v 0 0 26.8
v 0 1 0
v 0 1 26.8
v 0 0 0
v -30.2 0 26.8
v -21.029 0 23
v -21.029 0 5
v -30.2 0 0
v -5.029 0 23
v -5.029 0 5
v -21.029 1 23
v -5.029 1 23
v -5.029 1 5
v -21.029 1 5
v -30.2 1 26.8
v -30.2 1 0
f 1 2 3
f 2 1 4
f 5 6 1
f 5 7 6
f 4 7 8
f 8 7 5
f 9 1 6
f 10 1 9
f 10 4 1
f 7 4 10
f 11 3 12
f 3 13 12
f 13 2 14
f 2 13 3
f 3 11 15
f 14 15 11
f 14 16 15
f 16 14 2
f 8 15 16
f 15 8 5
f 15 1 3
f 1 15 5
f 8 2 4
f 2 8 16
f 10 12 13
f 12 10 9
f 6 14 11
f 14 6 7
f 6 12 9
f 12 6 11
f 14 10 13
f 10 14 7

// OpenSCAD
$fn = 180;

wall_width = 30.2;
wall_height = 26.8;
wall_thickness = 1.;

window_w = 16;
window_h = 18.;
window_y = 5.; // distance from bottom to window

module wall_with_openings() {
    difference() {
        // main wall
        cube([wall_width, wall_height, wall_thickness]);
        // window cutout
        translate([9.171, window_y, -1]) {
            cube([window_w, window_h, wall_thickness + 2]);
        }
    }
}

// Rotate to stand upright
translate([-wall_width, wall_thickness, 0]) {
    rotate([90, 0, 0]) wall_with_openings();
}
